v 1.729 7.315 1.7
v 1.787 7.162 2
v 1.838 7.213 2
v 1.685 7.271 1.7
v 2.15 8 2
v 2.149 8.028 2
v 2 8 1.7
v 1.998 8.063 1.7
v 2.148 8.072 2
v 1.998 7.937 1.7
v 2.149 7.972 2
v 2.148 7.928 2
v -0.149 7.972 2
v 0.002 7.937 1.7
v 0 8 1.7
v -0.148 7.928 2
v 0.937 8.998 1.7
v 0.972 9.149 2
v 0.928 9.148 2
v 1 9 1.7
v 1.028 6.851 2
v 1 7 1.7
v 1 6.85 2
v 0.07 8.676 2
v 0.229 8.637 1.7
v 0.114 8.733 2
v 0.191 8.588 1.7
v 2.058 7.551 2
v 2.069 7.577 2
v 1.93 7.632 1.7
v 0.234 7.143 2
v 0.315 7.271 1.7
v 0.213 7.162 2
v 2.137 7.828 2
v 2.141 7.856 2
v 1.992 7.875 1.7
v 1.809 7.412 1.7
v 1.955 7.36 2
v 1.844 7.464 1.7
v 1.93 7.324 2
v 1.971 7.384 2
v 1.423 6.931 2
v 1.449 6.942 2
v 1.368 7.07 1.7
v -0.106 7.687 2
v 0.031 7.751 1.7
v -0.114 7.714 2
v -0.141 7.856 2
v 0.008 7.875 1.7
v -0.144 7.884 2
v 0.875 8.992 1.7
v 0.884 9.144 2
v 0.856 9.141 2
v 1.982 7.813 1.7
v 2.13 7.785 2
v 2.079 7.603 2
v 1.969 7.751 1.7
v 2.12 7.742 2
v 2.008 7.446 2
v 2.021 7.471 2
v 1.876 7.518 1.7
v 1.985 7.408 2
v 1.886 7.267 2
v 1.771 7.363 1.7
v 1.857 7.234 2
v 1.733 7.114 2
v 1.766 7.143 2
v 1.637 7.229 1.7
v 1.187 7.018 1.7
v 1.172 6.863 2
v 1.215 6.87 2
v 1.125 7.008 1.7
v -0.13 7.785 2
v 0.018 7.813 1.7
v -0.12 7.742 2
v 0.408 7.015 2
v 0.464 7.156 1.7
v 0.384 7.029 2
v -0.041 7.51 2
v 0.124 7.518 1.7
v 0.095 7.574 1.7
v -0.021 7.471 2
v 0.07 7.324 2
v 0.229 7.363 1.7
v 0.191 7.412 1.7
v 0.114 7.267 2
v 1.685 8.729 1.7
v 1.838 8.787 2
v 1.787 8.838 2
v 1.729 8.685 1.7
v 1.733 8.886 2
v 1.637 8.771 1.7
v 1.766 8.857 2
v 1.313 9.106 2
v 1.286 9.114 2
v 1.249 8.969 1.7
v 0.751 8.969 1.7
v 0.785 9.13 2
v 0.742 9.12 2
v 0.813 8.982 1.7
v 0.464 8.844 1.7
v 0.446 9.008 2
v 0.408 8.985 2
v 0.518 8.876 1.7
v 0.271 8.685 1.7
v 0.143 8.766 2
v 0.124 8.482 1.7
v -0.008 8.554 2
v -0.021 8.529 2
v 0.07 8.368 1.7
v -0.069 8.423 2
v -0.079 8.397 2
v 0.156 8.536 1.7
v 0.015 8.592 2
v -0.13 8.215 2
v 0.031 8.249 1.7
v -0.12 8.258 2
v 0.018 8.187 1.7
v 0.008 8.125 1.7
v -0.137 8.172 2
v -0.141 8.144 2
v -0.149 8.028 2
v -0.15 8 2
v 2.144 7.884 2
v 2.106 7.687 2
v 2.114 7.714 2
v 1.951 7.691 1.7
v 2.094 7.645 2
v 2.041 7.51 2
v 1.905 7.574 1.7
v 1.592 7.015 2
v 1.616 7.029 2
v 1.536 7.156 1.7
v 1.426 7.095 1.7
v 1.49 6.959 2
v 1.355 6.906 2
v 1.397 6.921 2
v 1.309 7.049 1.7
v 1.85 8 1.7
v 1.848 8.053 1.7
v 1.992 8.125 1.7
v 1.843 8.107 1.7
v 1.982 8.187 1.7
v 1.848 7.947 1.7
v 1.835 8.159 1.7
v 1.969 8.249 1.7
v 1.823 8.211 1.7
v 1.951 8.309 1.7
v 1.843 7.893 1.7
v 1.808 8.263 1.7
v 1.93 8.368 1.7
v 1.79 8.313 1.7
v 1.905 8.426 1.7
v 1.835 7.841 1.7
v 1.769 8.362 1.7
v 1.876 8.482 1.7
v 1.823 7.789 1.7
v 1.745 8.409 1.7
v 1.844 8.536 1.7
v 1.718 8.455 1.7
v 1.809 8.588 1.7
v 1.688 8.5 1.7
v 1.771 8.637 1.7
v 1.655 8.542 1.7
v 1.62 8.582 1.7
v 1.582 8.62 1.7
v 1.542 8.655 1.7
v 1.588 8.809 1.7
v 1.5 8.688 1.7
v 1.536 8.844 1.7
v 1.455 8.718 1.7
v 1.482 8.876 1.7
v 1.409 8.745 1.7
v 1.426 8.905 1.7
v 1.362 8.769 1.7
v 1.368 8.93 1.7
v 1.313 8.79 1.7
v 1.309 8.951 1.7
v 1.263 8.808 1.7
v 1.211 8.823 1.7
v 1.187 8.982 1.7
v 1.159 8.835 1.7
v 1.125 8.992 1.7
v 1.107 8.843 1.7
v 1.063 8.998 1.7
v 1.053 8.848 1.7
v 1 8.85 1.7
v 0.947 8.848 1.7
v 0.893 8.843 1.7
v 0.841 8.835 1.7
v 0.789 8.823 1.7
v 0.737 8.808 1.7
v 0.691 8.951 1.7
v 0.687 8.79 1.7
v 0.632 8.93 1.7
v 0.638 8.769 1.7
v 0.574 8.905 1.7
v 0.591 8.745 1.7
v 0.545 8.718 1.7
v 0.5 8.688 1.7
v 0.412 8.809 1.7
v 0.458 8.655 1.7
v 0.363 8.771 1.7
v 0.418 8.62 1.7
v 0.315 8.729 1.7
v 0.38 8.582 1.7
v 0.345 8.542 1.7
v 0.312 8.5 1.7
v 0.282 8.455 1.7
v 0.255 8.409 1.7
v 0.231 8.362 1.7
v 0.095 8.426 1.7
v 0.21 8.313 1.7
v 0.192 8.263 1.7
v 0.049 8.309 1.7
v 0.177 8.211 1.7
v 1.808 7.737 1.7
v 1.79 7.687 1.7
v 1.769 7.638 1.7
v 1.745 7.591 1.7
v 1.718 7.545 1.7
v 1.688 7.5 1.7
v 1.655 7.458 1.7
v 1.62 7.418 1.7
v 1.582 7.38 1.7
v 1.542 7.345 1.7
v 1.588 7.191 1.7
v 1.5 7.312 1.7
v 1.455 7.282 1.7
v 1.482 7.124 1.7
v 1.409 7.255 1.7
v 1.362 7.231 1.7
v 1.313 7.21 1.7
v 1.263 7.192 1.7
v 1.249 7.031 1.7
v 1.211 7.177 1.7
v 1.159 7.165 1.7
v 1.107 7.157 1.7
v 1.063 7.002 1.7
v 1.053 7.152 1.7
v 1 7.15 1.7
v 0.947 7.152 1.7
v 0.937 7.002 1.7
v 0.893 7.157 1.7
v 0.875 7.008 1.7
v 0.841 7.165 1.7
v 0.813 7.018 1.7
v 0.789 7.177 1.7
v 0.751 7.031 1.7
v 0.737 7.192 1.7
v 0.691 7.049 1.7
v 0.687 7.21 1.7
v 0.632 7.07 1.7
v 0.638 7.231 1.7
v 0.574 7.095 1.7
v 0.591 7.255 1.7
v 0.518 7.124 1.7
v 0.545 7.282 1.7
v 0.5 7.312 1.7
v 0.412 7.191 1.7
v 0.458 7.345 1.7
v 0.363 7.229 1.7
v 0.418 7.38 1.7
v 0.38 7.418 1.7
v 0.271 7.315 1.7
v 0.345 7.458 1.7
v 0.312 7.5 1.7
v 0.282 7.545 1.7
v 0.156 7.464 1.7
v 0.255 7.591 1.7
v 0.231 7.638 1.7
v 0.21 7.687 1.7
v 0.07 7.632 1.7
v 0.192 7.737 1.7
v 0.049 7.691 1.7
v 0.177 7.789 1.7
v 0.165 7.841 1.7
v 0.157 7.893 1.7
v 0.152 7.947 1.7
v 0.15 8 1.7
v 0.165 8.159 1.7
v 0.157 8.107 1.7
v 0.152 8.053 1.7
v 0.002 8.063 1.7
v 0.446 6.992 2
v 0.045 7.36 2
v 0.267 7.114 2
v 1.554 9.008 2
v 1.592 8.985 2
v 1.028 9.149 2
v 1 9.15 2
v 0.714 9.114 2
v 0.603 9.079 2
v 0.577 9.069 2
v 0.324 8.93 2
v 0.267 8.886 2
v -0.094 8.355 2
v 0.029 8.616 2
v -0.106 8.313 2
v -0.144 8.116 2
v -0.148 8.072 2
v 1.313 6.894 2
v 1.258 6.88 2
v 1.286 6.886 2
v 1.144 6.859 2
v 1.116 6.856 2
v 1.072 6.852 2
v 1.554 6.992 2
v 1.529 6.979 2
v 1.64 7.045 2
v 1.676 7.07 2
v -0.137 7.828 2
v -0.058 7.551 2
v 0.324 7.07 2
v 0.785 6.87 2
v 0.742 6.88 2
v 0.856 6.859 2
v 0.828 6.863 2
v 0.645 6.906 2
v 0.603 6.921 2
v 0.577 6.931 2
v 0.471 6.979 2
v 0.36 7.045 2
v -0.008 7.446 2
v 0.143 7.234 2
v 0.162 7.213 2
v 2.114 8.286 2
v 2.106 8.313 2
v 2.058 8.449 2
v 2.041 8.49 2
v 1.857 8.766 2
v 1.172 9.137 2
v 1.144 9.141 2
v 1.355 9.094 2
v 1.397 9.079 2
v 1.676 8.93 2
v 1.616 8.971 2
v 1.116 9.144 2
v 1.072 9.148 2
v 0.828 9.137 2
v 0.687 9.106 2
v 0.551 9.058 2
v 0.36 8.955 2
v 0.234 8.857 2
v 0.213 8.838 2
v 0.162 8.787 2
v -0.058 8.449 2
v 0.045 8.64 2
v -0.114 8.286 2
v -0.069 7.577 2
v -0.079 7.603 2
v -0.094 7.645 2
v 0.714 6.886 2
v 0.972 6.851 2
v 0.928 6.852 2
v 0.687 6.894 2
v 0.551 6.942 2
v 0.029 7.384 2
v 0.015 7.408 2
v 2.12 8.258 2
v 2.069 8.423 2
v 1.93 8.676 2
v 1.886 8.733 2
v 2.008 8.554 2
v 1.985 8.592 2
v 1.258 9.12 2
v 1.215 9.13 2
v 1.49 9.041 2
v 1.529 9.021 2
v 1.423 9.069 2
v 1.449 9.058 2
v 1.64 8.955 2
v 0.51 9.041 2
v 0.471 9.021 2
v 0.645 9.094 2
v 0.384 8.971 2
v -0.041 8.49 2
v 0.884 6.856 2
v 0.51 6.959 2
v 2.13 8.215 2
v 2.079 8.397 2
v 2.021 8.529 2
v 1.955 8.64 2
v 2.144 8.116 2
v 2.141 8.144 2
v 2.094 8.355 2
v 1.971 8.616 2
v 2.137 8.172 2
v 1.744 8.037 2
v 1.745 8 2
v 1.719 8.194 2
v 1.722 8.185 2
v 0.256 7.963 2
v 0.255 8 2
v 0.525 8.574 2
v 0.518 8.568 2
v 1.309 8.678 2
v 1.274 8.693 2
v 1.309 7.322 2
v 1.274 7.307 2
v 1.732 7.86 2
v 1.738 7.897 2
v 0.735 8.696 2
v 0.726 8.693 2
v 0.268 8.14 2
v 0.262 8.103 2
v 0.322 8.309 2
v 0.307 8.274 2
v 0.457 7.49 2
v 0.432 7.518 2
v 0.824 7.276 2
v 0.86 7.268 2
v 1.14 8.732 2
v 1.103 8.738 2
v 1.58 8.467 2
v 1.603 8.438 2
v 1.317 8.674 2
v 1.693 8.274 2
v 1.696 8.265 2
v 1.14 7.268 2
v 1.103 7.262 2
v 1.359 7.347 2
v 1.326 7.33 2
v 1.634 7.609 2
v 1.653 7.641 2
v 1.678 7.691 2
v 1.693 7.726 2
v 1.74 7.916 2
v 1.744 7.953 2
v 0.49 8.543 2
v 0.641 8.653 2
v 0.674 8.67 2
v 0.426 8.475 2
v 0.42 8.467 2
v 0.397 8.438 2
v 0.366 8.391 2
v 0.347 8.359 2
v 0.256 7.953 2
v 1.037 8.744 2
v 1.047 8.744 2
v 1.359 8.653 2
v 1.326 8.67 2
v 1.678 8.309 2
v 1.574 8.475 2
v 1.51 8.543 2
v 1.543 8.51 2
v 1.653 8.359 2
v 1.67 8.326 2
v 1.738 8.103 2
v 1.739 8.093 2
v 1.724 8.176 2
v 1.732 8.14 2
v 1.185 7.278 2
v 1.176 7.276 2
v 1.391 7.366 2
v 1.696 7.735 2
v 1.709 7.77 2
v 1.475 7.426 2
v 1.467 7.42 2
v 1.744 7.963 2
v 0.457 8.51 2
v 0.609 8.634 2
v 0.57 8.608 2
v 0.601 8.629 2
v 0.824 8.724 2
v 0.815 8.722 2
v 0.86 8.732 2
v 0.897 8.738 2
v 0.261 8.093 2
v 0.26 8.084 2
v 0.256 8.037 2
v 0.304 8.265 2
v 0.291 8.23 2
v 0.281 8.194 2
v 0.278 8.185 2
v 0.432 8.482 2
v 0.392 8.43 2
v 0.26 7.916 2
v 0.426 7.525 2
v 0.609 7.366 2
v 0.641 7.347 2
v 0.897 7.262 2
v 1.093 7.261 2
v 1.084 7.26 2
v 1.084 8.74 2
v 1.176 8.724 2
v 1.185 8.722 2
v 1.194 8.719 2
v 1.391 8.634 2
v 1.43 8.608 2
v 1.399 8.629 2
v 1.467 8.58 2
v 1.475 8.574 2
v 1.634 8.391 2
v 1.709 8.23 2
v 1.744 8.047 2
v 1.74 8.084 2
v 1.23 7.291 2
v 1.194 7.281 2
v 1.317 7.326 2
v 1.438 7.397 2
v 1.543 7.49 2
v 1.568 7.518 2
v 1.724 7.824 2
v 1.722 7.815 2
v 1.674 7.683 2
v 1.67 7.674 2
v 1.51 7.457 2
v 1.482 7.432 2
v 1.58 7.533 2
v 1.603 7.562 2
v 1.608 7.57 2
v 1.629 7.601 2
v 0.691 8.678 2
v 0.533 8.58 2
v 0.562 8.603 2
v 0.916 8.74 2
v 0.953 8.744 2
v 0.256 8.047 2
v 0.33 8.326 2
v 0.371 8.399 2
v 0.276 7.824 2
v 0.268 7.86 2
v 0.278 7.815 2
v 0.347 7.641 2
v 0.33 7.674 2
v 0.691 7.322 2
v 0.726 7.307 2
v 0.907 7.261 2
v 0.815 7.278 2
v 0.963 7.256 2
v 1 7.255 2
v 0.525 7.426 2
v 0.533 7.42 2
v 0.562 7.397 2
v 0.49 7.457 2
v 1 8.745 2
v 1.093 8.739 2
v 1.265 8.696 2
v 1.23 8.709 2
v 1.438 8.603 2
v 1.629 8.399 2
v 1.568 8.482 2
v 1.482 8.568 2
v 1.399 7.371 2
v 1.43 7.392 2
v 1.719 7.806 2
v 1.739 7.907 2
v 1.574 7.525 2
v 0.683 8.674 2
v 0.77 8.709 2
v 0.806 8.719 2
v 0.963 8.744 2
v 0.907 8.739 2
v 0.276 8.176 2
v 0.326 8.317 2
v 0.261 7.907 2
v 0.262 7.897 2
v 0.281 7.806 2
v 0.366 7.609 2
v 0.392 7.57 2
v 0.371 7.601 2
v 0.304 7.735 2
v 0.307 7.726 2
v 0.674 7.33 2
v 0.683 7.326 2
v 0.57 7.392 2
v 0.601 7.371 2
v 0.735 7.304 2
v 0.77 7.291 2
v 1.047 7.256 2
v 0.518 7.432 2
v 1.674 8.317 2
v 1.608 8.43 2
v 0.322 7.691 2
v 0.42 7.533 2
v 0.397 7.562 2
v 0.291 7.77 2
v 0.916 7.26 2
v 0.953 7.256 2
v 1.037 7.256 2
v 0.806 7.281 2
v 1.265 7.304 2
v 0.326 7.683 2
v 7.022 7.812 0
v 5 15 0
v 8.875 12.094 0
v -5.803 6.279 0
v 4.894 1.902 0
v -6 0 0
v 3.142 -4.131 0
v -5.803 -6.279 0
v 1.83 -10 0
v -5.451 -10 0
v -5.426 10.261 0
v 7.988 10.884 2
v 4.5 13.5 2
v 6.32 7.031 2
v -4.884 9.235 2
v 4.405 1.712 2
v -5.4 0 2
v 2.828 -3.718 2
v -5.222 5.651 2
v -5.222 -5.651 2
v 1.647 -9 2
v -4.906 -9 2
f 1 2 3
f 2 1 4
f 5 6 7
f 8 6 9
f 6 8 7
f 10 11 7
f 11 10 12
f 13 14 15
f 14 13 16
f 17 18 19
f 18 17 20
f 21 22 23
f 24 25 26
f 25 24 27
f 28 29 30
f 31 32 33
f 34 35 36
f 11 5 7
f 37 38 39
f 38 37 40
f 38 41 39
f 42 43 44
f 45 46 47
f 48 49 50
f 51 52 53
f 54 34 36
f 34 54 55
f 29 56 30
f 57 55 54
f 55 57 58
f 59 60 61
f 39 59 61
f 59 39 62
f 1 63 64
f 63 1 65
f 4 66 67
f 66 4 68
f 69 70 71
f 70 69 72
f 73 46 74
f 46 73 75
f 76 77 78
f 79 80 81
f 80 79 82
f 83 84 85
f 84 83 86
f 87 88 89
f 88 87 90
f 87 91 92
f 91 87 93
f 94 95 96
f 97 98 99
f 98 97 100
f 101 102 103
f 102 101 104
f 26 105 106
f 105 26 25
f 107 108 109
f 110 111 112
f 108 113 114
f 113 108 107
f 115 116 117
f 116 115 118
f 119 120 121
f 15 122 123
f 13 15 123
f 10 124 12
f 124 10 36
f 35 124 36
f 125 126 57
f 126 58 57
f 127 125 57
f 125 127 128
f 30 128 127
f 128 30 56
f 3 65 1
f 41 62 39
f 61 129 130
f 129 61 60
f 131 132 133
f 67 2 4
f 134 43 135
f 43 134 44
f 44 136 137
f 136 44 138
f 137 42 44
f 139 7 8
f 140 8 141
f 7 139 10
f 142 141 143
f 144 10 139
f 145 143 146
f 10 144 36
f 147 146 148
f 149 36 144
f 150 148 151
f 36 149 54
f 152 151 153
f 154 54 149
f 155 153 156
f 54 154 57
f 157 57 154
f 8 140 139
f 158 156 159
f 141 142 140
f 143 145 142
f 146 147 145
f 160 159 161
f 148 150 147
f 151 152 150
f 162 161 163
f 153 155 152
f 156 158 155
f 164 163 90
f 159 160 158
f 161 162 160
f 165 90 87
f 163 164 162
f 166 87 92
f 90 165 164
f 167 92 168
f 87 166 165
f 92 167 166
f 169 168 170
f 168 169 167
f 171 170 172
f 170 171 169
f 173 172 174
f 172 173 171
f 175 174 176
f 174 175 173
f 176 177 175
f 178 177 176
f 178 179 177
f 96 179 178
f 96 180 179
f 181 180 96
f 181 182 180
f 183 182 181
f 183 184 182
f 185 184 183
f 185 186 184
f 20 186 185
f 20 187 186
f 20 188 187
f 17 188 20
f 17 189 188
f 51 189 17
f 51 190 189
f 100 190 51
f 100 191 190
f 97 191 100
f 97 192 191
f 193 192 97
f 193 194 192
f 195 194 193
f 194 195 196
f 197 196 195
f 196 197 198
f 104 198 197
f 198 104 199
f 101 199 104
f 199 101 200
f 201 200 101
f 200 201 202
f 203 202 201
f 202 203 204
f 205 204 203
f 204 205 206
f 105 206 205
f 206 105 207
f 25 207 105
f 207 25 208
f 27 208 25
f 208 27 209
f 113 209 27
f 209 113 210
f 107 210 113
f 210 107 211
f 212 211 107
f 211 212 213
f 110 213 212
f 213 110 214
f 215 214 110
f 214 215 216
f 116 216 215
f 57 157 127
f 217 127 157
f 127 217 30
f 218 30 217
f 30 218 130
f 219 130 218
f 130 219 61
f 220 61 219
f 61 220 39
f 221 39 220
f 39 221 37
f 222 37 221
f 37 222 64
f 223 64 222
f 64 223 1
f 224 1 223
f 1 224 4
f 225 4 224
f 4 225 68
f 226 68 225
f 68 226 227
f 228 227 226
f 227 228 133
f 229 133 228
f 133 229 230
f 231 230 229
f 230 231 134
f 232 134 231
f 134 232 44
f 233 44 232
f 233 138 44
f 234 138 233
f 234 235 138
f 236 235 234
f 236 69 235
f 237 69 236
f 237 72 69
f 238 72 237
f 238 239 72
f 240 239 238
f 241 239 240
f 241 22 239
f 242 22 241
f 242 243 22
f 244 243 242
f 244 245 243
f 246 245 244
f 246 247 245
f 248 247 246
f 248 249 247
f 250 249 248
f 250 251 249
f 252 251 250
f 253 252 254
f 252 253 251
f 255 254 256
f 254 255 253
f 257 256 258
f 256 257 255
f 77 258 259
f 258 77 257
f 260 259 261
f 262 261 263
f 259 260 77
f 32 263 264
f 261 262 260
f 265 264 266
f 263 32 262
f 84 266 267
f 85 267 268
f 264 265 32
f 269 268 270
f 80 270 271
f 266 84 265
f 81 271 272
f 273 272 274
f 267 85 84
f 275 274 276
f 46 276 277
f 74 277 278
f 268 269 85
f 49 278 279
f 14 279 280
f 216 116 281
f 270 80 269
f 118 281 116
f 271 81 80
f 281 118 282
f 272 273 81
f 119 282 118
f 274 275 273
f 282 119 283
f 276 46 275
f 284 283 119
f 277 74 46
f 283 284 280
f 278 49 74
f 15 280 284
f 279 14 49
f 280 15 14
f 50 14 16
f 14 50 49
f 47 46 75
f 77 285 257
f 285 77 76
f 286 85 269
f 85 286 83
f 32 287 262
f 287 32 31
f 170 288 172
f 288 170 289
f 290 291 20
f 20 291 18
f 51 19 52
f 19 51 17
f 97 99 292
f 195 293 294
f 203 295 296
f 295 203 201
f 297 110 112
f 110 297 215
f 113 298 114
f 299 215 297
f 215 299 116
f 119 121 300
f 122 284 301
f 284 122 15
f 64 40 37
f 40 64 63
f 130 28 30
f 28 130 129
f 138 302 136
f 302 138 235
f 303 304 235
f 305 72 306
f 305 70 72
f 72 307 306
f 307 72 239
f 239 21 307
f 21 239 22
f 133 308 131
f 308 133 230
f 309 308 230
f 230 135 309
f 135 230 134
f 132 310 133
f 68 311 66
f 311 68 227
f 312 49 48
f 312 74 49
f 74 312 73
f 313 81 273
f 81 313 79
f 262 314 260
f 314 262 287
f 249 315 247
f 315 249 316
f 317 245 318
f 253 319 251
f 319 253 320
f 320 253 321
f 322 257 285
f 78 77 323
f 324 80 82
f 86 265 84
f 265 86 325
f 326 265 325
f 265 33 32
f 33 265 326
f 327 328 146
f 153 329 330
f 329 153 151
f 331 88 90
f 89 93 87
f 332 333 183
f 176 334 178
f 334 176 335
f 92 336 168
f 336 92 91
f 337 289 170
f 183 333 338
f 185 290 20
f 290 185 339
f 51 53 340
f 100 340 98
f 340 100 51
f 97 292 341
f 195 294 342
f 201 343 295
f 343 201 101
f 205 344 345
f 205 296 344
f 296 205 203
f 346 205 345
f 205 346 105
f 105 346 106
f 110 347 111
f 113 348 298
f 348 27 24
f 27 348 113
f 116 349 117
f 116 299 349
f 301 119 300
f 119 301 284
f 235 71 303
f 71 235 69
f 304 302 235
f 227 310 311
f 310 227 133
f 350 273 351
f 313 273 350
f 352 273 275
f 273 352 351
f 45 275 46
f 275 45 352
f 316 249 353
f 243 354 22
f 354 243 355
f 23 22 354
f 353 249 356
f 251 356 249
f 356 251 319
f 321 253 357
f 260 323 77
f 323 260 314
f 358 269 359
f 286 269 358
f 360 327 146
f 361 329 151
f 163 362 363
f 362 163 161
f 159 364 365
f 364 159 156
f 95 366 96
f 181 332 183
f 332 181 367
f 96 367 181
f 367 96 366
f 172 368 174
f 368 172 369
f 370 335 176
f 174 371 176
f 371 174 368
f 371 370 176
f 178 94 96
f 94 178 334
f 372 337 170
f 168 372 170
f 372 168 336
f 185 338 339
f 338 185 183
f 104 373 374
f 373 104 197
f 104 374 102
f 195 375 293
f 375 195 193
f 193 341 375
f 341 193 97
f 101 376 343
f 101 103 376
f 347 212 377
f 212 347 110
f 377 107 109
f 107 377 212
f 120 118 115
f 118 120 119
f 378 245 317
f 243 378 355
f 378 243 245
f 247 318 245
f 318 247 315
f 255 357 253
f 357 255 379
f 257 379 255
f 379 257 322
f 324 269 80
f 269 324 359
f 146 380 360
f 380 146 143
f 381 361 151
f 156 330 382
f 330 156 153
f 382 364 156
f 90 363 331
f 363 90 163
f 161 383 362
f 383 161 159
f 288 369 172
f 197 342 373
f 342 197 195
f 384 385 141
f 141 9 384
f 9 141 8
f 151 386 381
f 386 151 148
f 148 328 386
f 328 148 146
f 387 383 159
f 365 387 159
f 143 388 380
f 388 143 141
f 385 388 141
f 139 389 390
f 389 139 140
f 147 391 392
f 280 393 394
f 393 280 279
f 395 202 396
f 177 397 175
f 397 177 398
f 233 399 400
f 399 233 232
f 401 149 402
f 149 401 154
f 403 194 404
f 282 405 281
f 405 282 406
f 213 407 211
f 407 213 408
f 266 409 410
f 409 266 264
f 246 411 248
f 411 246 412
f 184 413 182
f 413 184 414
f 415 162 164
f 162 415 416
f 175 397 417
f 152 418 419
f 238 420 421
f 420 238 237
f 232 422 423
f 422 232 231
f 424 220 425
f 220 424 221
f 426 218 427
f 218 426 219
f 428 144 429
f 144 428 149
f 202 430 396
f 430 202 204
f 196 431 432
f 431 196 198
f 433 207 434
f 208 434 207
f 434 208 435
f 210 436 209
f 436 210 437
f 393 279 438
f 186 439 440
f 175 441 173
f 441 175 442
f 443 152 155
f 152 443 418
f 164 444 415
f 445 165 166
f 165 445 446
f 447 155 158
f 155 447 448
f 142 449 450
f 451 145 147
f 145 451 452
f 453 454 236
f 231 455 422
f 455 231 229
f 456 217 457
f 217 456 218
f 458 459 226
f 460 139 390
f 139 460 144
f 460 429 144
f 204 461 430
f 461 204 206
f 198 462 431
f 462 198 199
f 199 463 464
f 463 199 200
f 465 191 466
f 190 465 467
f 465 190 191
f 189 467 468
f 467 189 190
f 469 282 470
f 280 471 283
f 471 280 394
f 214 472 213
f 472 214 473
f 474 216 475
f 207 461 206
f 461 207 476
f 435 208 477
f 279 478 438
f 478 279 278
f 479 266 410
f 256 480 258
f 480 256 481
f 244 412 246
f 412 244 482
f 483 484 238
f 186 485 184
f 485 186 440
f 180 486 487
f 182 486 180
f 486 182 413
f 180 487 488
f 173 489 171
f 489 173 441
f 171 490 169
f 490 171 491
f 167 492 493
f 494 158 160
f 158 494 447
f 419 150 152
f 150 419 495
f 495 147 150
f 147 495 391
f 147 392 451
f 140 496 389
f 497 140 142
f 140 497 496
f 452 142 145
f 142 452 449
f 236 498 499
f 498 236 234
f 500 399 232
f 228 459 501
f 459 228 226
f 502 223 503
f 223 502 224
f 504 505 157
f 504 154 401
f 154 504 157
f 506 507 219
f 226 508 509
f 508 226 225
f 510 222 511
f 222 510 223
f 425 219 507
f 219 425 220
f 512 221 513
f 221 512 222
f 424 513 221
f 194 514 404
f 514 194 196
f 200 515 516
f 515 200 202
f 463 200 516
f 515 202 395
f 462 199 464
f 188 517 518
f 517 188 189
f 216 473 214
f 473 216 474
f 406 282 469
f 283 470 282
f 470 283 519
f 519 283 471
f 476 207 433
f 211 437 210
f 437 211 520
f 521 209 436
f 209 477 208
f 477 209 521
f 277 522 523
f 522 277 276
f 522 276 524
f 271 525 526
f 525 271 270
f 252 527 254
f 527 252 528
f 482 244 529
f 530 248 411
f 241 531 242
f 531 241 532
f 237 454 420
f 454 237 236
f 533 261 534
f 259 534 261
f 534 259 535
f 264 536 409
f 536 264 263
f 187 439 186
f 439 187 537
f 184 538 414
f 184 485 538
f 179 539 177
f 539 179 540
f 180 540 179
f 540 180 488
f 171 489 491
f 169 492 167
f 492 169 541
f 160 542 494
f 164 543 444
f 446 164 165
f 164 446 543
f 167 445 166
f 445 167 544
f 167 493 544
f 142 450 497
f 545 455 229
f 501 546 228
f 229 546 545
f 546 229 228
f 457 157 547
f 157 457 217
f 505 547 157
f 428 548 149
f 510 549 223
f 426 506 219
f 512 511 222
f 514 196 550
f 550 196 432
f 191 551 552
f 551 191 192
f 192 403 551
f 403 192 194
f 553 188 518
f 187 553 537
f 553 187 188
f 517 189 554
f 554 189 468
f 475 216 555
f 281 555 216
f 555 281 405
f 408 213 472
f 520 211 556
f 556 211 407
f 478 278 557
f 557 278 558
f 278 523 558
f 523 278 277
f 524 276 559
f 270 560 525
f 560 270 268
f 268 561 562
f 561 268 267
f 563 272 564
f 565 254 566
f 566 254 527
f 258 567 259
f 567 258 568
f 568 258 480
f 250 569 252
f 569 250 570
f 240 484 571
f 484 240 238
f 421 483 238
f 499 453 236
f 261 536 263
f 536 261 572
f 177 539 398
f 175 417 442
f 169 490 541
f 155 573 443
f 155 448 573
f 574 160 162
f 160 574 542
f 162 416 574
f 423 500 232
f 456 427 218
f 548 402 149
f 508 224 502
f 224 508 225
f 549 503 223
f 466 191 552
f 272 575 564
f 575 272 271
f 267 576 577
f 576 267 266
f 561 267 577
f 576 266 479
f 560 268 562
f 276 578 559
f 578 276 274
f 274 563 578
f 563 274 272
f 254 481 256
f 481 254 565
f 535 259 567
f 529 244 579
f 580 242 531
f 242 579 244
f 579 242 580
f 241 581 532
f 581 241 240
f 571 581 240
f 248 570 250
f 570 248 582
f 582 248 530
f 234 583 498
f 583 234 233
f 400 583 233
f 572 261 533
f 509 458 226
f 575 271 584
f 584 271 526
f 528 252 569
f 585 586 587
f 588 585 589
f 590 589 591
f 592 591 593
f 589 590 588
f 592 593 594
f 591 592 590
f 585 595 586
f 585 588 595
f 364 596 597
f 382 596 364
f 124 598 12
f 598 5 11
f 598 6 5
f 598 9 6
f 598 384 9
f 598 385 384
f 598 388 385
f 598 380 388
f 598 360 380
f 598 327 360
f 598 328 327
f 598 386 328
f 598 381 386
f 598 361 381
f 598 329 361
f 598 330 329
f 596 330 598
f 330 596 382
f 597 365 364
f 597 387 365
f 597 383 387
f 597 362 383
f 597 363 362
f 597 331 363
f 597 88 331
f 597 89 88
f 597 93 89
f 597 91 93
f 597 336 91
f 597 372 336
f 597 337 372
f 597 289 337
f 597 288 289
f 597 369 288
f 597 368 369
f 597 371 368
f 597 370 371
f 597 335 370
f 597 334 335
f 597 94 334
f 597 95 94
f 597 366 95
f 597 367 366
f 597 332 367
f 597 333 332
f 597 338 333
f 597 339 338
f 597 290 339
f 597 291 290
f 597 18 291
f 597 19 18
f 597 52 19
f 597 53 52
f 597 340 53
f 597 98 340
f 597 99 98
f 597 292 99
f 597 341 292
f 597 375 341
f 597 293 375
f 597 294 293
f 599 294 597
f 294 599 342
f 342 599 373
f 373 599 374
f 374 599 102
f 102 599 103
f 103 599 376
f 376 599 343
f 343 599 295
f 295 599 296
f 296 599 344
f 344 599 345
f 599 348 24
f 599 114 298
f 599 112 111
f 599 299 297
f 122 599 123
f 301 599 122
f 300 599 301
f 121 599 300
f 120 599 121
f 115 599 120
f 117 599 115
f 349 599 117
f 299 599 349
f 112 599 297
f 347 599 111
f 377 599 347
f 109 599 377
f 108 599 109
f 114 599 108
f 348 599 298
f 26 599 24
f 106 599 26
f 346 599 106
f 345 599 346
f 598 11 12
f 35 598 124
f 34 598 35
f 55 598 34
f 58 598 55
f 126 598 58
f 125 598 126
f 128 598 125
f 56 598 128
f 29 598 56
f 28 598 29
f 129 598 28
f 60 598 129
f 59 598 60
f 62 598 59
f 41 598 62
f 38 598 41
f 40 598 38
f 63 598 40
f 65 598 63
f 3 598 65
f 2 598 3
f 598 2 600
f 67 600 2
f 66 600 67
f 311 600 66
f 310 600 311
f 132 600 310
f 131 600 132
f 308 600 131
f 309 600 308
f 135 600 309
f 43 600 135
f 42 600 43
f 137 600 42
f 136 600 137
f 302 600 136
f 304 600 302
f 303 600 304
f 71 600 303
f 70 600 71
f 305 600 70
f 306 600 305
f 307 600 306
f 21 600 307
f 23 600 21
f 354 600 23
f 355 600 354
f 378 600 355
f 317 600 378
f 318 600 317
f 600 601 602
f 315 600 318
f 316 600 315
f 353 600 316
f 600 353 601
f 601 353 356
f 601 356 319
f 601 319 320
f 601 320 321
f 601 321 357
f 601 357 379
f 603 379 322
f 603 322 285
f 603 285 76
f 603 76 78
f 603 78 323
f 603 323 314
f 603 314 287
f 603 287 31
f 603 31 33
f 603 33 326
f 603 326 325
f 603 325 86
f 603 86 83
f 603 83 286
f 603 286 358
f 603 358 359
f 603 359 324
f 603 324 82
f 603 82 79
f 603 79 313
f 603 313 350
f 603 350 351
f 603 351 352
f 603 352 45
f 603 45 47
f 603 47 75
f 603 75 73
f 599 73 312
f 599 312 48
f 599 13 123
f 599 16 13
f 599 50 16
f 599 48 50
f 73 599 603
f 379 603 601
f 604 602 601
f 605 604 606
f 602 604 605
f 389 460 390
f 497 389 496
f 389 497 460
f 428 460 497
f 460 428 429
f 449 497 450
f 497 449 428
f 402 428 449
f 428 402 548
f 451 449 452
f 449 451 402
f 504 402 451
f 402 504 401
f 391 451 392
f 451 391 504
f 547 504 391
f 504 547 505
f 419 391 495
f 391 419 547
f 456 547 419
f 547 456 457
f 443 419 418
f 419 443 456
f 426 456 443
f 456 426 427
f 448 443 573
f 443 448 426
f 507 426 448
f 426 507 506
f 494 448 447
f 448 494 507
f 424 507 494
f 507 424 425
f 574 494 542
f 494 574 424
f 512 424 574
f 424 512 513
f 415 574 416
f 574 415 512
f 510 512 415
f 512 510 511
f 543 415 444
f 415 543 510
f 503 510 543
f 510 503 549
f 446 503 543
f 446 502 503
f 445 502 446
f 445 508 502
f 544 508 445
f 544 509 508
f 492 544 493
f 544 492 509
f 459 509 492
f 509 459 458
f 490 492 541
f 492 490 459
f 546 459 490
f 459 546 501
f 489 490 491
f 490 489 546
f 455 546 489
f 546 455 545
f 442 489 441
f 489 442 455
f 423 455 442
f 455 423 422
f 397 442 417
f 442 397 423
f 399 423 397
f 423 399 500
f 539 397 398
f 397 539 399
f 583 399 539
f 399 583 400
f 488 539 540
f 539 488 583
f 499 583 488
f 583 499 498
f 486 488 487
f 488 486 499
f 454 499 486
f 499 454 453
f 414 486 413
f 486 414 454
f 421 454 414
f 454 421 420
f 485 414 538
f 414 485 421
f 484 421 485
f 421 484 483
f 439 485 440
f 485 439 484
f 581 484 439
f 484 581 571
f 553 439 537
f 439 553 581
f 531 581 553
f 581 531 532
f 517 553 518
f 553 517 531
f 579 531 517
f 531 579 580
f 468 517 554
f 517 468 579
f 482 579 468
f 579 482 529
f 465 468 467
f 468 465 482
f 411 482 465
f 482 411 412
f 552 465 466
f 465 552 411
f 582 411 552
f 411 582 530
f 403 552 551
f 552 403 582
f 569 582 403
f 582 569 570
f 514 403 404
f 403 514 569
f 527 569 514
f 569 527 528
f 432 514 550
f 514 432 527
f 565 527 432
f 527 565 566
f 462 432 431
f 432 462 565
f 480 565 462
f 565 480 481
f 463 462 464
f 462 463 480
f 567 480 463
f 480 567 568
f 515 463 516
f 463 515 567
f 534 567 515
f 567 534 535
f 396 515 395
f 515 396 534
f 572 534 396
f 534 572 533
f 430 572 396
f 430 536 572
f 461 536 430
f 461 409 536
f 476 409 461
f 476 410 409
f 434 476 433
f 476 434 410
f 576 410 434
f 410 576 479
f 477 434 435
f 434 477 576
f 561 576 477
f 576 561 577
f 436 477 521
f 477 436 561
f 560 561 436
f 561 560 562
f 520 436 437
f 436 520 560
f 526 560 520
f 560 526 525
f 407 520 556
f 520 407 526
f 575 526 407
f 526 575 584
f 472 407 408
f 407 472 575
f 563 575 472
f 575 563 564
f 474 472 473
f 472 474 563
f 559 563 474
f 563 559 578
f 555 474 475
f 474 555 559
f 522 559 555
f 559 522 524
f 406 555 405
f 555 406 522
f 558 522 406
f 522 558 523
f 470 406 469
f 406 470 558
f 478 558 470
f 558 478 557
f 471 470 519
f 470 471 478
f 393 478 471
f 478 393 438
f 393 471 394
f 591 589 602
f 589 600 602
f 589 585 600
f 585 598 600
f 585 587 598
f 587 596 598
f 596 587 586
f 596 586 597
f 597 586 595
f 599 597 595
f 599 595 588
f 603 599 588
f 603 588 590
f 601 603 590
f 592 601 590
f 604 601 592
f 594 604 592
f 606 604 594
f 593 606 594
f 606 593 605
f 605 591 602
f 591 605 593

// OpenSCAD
$fn = 100;

module shape() {
    translate([-6, -10])
    difference() {
        intersection() {
            polygon([
                [0, 0],
                [0, 20],
                [11, 25],
                [15, 22],
                [8, 0]
            ]);
            translate([100, 10]) circle(100);
        }
        translate([106, -19]) circle(100);
    }
}

module joint() {
    difference() {
        cylinder(d1=2, d2=3, h=1);
        cylinder(d1=1.7, d2=1, h=1);
    }
}

difference() {
    linear_extrude(height=2, scale=0.9) shape();
    translate([1, 8, 1.7]) joint();
}
